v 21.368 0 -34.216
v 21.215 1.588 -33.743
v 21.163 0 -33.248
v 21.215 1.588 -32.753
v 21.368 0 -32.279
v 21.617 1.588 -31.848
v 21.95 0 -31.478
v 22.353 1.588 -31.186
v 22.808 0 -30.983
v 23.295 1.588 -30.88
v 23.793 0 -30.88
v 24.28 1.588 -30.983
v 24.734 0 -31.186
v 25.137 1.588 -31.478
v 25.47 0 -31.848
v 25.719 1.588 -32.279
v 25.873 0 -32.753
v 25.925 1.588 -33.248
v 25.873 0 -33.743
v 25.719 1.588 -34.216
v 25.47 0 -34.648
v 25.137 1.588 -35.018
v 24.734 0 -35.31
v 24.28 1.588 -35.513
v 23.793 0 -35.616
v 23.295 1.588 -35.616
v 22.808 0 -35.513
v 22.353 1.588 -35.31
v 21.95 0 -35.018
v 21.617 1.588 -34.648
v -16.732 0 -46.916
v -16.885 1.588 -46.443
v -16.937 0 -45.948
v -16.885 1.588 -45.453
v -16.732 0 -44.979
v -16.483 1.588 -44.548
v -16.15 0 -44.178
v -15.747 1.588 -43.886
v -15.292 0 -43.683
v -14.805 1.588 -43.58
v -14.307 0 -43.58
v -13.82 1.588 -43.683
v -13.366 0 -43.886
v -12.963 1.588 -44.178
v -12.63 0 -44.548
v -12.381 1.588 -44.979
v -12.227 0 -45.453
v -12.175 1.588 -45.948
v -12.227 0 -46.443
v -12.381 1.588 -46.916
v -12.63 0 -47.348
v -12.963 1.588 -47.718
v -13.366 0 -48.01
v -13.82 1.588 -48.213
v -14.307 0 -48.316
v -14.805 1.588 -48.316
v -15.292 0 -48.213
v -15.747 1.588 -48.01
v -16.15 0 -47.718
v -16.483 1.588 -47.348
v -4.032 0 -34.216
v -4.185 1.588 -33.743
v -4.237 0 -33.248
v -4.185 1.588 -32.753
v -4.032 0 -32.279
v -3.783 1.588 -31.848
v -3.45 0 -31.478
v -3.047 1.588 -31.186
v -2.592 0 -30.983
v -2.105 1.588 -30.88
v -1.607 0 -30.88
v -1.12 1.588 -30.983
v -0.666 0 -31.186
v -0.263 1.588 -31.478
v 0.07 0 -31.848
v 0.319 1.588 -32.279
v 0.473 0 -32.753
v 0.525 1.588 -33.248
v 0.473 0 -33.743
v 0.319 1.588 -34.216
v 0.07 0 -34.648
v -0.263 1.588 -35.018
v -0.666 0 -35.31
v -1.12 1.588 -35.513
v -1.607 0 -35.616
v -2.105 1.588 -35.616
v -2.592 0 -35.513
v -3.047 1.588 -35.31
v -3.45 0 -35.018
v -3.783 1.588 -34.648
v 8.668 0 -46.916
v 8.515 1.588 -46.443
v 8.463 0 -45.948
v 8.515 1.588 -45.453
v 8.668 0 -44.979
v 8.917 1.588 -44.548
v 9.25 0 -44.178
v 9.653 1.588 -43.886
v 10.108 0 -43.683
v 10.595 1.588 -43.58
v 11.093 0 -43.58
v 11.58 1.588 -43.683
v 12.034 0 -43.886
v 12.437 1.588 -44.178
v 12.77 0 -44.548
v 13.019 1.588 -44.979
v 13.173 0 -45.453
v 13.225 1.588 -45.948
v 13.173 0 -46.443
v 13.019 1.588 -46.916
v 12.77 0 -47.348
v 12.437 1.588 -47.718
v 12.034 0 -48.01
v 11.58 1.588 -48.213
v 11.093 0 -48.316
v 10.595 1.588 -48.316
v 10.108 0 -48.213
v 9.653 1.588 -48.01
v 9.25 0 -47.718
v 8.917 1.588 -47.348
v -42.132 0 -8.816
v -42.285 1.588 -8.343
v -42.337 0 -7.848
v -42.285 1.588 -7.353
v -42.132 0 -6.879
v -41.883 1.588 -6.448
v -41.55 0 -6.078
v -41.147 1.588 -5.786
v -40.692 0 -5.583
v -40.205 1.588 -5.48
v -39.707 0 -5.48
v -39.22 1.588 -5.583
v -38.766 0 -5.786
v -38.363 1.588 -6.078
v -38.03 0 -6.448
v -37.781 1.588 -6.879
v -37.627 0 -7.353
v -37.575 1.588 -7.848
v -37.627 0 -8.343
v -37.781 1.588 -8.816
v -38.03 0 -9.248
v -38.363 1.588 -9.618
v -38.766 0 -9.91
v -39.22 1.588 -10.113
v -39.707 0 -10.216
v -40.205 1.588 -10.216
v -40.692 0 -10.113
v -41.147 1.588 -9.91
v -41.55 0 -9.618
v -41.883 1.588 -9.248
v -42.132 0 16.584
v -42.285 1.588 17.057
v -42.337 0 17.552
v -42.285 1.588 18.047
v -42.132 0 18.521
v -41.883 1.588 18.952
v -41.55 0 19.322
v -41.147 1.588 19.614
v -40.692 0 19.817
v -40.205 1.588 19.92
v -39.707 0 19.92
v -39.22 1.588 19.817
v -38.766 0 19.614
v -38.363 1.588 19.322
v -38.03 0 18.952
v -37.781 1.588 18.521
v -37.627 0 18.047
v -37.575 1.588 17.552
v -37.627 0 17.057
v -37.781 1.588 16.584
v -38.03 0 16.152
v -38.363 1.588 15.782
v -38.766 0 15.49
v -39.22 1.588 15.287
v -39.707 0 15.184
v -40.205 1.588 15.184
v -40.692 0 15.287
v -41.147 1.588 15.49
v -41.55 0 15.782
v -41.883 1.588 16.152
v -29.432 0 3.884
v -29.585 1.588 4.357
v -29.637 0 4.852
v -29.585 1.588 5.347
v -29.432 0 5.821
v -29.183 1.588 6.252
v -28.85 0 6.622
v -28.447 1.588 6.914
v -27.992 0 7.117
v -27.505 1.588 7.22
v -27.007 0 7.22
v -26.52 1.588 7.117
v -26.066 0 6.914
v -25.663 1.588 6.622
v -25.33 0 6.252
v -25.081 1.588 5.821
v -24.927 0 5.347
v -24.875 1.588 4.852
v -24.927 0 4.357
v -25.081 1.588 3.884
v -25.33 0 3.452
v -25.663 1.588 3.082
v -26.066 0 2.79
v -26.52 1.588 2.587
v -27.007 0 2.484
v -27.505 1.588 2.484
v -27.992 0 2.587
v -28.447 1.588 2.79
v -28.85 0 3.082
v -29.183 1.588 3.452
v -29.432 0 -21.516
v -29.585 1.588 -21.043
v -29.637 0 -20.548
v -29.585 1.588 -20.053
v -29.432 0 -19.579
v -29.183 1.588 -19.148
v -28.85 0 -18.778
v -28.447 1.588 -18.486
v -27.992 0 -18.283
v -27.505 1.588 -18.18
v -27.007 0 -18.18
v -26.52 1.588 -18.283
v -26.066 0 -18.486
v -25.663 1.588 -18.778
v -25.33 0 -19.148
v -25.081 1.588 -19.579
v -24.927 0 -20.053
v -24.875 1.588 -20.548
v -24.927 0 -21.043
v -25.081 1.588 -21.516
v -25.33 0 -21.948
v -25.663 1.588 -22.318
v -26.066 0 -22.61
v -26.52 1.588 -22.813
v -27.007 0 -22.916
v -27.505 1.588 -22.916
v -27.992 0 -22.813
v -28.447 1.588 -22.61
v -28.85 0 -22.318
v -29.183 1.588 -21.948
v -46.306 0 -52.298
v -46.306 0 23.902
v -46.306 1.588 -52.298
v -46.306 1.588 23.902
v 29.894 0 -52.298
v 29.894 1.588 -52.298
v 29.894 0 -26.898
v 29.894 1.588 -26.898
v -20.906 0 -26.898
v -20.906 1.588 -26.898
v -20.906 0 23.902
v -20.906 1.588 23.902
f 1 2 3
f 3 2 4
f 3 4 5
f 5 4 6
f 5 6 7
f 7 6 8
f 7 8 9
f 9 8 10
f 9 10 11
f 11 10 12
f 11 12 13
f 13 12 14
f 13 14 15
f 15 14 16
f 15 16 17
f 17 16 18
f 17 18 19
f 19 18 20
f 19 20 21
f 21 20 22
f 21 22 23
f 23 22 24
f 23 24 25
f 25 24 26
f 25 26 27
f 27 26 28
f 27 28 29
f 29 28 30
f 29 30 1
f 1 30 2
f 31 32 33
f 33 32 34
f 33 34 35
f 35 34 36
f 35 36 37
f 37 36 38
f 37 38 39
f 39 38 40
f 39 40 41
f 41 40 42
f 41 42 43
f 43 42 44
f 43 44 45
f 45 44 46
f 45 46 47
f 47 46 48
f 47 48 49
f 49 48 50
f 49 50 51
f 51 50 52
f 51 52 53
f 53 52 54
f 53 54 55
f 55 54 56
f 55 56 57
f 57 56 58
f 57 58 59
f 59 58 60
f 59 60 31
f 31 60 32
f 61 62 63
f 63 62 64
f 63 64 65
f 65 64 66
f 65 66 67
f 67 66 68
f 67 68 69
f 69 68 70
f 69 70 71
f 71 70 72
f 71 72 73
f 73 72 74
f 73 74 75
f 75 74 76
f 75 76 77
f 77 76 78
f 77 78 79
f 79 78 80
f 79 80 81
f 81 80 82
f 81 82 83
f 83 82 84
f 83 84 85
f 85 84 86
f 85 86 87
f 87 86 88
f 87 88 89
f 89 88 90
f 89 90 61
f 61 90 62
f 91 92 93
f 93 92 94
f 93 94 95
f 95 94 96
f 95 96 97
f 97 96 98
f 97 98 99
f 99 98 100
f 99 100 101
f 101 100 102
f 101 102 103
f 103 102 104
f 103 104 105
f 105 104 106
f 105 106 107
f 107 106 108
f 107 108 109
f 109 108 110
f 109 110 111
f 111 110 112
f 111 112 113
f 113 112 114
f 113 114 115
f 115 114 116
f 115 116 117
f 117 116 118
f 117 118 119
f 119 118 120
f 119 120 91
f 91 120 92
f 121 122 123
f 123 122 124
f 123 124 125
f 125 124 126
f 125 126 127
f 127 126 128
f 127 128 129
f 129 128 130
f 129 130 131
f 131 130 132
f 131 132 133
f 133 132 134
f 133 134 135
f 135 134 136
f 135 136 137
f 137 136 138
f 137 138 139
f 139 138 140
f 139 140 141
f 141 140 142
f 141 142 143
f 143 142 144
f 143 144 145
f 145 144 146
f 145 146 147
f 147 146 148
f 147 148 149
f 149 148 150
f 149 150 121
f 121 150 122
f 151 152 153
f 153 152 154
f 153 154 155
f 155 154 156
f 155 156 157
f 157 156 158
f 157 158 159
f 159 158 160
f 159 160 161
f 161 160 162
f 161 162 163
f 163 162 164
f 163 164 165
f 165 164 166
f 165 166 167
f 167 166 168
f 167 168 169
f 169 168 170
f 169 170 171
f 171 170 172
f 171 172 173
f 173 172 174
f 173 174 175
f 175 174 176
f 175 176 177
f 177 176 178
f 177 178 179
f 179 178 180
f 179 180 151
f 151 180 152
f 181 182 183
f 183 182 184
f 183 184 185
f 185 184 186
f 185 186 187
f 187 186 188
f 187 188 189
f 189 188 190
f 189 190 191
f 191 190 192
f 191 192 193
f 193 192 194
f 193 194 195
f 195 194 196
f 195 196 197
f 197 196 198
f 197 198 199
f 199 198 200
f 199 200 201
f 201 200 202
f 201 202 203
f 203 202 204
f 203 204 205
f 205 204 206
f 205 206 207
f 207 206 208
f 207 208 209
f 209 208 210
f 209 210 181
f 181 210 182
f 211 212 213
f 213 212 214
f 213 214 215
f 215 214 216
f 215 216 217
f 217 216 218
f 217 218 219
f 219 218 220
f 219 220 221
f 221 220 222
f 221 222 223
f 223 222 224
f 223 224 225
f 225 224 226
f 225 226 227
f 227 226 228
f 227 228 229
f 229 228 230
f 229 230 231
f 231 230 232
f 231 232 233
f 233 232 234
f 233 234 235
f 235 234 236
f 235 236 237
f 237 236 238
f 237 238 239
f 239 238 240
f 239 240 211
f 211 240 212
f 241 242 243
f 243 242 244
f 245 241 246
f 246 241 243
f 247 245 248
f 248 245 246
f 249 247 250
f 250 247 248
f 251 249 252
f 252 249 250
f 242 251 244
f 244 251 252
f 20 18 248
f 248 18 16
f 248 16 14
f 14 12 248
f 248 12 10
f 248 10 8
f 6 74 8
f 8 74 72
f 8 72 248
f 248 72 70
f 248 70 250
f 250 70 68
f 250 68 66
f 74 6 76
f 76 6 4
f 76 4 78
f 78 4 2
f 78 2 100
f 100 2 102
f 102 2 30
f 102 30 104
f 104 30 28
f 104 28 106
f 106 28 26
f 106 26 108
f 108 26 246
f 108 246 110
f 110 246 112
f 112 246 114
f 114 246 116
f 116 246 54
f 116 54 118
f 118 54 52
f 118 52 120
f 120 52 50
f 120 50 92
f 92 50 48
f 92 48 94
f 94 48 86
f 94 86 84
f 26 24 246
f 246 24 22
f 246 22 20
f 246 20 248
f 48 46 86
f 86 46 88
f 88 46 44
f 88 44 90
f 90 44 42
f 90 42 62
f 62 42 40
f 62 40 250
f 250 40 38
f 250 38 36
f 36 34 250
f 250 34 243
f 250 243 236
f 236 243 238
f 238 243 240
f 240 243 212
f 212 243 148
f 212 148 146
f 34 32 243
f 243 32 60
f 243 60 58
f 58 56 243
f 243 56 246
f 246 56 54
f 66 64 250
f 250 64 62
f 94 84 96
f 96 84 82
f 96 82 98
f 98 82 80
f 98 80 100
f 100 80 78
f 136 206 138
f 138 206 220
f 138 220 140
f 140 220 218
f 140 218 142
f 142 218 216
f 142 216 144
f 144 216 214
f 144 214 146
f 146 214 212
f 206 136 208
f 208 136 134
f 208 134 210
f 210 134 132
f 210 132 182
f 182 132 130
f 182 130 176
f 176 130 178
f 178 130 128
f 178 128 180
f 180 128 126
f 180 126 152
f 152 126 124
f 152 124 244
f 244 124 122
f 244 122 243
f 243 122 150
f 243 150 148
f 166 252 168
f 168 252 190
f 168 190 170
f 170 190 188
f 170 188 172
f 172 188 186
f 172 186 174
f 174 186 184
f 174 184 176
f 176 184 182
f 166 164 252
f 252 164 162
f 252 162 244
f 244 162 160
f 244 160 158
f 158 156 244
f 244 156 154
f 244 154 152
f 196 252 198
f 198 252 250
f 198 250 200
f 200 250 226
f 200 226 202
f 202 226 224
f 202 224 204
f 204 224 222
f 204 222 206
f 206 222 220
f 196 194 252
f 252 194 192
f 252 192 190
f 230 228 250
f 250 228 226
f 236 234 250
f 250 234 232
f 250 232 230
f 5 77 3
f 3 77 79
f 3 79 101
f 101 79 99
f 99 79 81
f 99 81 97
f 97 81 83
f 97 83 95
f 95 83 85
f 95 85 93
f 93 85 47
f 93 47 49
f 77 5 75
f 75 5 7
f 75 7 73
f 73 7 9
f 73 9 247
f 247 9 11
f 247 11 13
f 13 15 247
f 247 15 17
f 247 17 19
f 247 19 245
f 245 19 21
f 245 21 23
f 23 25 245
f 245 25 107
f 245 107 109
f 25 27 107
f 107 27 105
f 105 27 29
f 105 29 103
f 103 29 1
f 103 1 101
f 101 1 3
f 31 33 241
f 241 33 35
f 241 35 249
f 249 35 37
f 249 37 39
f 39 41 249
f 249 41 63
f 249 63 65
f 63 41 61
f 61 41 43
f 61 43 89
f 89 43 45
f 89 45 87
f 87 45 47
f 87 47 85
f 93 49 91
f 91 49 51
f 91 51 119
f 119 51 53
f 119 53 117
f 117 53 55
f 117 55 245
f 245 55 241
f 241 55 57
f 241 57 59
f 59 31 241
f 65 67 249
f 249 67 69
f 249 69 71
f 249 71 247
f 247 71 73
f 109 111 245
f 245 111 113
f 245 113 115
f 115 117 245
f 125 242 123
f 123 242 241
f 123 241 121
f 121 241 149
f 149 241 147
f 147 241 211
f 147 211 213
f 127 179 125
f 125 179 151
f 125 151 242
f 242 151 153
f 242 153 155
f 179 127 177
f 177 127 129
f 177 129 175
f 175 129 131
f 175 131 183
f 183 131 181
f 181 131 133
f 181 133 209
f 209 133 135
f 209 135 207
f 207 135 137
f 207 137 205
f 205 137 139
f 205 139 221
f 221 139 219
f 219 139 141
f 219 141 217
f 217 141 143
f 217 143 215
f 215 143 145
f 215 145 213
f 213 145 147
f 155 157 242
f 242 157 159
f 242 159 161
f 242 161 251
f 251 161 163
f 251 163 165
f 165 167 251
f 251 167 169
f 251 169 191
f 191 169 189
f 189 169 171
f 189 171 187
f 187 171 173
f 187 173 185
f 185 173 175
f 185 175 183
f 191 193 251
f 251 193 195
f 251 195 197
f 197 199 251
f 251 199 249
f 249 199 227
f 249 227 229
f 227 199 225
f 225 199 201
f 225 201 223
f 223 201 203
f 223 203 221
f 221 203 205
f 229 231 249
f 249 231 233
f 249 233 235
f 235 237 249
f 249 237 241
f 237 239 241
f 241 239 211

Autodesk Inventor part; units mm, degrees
ref_plane "YZ Plane" through (0, 0, 0) normal (1, 0, 0) x (0, 1, 0)
ref_plane "XZ Plane" through (0, 0, 0) normal (0, 1, 0) x (-1, 0, 0)
ref_plane "XY Plane" through (0, 0, 0) normal (0, 0, 1) x (1, 0, 0)
sketch "Sketch1" plane through (0, 0, 0) normal (0, 1, 0) x (-1, 0, 0)
  line L0 (46.3062, 23.9021) -> (20.9062, 23.9021)
  line L1 (20.9062, 23.9021) -> (20.9062, -26.8979)
  line L2 (15.3051, -52.2979) -> (46.3062, -52.2979)
  line L3 (46.3062, -52.2979) -> (46.3062, 23.9021)
  line L4 (46.3062, -52.2979) -> (-29.8938, -52.2979)
  line L5 (-29.8938, -52.2979) -> (-29.8938, -26.8979)
  line L6 (-29.8938, -26.8979) -> (20.9062, -26.8979)
  line L7 (46.3062, -26.8979) -> (46.3062, -52.2979)
  point P0 (0, 0)
  dimension "d0" = 25.4
  dimension "d1" = 25.4
  dimension "d2" = 76.2
  dimension "d3" = 76.2
extrude "Extrusion1" add sketch "Sketch1" along normal blind 1.5875
sketch "Sketch2" plane through (0, 1.5875, 0) normal (0, 1, 0) x (1, 0, 0)
  line L0 (-46.3062, -23.9021) -> (-20.9062, -23.9021) projected
  line L1 (-46.3062, 52.2979) -> (-46.3062, -23.9021) projected
  line L2 (-20.9062, -23.9021) -> (-20.9062, 26.8979) projected
  point P0 (0, 0)
  point P1 (-39.9562, -17.5521)
  point P2 (-27.2562, -4.8521)
  point P3 (-39.9562, 7.8479)
  point P4 (-27.2562, 20.5479)
  dimension "d6" = 6.35
  dimension "d7" = 6.35
  dimension "d8" = 6.35
  dimension "d9" = 12.7
  dimension "d10" = 12.7
  dimension "d11" = 6.35
  dimension "d12" = 12.7
  dimension "d13" = 6.35
hole "Hole1" at (-39.9562, 1.5875, 17.5521) at (-27.2562, 1.5875, 4.8521) at (-39.9562, 1.5875, -7.8479) at (-27.2562, 1.5875, -20.5479) direction (0, -1, 0) diameter 4.7625 depth 25.4 tip angle 118
sketch "Sketch3" plane through (0, 1.5875, 0) normal (0, 1, 0) x (1, 0, 0)
  line L0 (29.8938, 26.8979) -> (29.8938, 52.2979) projected
  line L1 (-20.9062, 26.8979) -> (29.8938, 26.8979) projected
  line L2 (29.8938, 52.2979) -> (-46.3062, 52.2979) projected
  point P0 (0, 0)
  point P1 (-14.5562, 45.9479)
  point P2 (-1.8562, 33.2479)
  point P3 (23.5438, 33.2479)
  point P4 (10.8438, 45.9479)
  dimension "d21" = 6.35
  dimension "d22" = 6.35
  dimension "d23" = 12.7
  dimension "d24" = 6.35
  dimension "d25" = 12.7
  dimension "d26" = 6.35
  dimension "d27" = 12.7
  dimension "d28" = 6.35
hole "Hole2" at (-14.5562, 1.5875, -45.9479) at (-1.8562, 1.5875, -33.2479) at (23.5438, 1.5875, -33.2479) at (10.8438, 1.5875, -45.9479) direction (0, -1, 0) diameter 4.7625 depth 25.4 tip angle 118
equation "\"d0\" = ElvBeamWidth"
equation "\"d1\" = ElvBeamWidth"
equation "\"d2\" = ElvRivetPlateLength"
equation "\"d3\" = ElvRivetPlateLength"
equation "\"d4\" = ElvWallWidth"
equation "\"ElvCrossBeamLength\" = 304.8"
equation "\"ElvFixedBeamLength\" = 990.6"
equation "\"ElvMiddleBeamLength\" = 990.6"
equation "\"ElvFrontBeamLength\" = 990.6"
equation "\"ElvEndEffectLength\" = 431.8"
equation "\"ElvBeamWidth\" = 25.4"
equation "\"ElvWallWidth\" = 1.5875"
equation "\"ElvDelWidth\" = 18.542"
equation "\"ElvDelHeight\" = 101.6"
equation "\"ElvDelFrontTabLength\" = 6.35"
equation "\"ElvDelDepth\" = 6.35"
equation "\"ElvTopBeamLength\" = 457.2"
equation "\"ElvHoleFromFront\" = 25.4"
equation "\"ElvHoleFromMid\" = 38.1"
equation "\"ElvHoleFromFixed\" = 50.8"
equation "\"ElvHoleFromBottom\" = 38.1"
equation "\"ElvRivetPlateLength\" = 76.2"
equation "\"ElvDelMiddleTabLength\" = 6.35"
properties part number "elvRivetPlate"
